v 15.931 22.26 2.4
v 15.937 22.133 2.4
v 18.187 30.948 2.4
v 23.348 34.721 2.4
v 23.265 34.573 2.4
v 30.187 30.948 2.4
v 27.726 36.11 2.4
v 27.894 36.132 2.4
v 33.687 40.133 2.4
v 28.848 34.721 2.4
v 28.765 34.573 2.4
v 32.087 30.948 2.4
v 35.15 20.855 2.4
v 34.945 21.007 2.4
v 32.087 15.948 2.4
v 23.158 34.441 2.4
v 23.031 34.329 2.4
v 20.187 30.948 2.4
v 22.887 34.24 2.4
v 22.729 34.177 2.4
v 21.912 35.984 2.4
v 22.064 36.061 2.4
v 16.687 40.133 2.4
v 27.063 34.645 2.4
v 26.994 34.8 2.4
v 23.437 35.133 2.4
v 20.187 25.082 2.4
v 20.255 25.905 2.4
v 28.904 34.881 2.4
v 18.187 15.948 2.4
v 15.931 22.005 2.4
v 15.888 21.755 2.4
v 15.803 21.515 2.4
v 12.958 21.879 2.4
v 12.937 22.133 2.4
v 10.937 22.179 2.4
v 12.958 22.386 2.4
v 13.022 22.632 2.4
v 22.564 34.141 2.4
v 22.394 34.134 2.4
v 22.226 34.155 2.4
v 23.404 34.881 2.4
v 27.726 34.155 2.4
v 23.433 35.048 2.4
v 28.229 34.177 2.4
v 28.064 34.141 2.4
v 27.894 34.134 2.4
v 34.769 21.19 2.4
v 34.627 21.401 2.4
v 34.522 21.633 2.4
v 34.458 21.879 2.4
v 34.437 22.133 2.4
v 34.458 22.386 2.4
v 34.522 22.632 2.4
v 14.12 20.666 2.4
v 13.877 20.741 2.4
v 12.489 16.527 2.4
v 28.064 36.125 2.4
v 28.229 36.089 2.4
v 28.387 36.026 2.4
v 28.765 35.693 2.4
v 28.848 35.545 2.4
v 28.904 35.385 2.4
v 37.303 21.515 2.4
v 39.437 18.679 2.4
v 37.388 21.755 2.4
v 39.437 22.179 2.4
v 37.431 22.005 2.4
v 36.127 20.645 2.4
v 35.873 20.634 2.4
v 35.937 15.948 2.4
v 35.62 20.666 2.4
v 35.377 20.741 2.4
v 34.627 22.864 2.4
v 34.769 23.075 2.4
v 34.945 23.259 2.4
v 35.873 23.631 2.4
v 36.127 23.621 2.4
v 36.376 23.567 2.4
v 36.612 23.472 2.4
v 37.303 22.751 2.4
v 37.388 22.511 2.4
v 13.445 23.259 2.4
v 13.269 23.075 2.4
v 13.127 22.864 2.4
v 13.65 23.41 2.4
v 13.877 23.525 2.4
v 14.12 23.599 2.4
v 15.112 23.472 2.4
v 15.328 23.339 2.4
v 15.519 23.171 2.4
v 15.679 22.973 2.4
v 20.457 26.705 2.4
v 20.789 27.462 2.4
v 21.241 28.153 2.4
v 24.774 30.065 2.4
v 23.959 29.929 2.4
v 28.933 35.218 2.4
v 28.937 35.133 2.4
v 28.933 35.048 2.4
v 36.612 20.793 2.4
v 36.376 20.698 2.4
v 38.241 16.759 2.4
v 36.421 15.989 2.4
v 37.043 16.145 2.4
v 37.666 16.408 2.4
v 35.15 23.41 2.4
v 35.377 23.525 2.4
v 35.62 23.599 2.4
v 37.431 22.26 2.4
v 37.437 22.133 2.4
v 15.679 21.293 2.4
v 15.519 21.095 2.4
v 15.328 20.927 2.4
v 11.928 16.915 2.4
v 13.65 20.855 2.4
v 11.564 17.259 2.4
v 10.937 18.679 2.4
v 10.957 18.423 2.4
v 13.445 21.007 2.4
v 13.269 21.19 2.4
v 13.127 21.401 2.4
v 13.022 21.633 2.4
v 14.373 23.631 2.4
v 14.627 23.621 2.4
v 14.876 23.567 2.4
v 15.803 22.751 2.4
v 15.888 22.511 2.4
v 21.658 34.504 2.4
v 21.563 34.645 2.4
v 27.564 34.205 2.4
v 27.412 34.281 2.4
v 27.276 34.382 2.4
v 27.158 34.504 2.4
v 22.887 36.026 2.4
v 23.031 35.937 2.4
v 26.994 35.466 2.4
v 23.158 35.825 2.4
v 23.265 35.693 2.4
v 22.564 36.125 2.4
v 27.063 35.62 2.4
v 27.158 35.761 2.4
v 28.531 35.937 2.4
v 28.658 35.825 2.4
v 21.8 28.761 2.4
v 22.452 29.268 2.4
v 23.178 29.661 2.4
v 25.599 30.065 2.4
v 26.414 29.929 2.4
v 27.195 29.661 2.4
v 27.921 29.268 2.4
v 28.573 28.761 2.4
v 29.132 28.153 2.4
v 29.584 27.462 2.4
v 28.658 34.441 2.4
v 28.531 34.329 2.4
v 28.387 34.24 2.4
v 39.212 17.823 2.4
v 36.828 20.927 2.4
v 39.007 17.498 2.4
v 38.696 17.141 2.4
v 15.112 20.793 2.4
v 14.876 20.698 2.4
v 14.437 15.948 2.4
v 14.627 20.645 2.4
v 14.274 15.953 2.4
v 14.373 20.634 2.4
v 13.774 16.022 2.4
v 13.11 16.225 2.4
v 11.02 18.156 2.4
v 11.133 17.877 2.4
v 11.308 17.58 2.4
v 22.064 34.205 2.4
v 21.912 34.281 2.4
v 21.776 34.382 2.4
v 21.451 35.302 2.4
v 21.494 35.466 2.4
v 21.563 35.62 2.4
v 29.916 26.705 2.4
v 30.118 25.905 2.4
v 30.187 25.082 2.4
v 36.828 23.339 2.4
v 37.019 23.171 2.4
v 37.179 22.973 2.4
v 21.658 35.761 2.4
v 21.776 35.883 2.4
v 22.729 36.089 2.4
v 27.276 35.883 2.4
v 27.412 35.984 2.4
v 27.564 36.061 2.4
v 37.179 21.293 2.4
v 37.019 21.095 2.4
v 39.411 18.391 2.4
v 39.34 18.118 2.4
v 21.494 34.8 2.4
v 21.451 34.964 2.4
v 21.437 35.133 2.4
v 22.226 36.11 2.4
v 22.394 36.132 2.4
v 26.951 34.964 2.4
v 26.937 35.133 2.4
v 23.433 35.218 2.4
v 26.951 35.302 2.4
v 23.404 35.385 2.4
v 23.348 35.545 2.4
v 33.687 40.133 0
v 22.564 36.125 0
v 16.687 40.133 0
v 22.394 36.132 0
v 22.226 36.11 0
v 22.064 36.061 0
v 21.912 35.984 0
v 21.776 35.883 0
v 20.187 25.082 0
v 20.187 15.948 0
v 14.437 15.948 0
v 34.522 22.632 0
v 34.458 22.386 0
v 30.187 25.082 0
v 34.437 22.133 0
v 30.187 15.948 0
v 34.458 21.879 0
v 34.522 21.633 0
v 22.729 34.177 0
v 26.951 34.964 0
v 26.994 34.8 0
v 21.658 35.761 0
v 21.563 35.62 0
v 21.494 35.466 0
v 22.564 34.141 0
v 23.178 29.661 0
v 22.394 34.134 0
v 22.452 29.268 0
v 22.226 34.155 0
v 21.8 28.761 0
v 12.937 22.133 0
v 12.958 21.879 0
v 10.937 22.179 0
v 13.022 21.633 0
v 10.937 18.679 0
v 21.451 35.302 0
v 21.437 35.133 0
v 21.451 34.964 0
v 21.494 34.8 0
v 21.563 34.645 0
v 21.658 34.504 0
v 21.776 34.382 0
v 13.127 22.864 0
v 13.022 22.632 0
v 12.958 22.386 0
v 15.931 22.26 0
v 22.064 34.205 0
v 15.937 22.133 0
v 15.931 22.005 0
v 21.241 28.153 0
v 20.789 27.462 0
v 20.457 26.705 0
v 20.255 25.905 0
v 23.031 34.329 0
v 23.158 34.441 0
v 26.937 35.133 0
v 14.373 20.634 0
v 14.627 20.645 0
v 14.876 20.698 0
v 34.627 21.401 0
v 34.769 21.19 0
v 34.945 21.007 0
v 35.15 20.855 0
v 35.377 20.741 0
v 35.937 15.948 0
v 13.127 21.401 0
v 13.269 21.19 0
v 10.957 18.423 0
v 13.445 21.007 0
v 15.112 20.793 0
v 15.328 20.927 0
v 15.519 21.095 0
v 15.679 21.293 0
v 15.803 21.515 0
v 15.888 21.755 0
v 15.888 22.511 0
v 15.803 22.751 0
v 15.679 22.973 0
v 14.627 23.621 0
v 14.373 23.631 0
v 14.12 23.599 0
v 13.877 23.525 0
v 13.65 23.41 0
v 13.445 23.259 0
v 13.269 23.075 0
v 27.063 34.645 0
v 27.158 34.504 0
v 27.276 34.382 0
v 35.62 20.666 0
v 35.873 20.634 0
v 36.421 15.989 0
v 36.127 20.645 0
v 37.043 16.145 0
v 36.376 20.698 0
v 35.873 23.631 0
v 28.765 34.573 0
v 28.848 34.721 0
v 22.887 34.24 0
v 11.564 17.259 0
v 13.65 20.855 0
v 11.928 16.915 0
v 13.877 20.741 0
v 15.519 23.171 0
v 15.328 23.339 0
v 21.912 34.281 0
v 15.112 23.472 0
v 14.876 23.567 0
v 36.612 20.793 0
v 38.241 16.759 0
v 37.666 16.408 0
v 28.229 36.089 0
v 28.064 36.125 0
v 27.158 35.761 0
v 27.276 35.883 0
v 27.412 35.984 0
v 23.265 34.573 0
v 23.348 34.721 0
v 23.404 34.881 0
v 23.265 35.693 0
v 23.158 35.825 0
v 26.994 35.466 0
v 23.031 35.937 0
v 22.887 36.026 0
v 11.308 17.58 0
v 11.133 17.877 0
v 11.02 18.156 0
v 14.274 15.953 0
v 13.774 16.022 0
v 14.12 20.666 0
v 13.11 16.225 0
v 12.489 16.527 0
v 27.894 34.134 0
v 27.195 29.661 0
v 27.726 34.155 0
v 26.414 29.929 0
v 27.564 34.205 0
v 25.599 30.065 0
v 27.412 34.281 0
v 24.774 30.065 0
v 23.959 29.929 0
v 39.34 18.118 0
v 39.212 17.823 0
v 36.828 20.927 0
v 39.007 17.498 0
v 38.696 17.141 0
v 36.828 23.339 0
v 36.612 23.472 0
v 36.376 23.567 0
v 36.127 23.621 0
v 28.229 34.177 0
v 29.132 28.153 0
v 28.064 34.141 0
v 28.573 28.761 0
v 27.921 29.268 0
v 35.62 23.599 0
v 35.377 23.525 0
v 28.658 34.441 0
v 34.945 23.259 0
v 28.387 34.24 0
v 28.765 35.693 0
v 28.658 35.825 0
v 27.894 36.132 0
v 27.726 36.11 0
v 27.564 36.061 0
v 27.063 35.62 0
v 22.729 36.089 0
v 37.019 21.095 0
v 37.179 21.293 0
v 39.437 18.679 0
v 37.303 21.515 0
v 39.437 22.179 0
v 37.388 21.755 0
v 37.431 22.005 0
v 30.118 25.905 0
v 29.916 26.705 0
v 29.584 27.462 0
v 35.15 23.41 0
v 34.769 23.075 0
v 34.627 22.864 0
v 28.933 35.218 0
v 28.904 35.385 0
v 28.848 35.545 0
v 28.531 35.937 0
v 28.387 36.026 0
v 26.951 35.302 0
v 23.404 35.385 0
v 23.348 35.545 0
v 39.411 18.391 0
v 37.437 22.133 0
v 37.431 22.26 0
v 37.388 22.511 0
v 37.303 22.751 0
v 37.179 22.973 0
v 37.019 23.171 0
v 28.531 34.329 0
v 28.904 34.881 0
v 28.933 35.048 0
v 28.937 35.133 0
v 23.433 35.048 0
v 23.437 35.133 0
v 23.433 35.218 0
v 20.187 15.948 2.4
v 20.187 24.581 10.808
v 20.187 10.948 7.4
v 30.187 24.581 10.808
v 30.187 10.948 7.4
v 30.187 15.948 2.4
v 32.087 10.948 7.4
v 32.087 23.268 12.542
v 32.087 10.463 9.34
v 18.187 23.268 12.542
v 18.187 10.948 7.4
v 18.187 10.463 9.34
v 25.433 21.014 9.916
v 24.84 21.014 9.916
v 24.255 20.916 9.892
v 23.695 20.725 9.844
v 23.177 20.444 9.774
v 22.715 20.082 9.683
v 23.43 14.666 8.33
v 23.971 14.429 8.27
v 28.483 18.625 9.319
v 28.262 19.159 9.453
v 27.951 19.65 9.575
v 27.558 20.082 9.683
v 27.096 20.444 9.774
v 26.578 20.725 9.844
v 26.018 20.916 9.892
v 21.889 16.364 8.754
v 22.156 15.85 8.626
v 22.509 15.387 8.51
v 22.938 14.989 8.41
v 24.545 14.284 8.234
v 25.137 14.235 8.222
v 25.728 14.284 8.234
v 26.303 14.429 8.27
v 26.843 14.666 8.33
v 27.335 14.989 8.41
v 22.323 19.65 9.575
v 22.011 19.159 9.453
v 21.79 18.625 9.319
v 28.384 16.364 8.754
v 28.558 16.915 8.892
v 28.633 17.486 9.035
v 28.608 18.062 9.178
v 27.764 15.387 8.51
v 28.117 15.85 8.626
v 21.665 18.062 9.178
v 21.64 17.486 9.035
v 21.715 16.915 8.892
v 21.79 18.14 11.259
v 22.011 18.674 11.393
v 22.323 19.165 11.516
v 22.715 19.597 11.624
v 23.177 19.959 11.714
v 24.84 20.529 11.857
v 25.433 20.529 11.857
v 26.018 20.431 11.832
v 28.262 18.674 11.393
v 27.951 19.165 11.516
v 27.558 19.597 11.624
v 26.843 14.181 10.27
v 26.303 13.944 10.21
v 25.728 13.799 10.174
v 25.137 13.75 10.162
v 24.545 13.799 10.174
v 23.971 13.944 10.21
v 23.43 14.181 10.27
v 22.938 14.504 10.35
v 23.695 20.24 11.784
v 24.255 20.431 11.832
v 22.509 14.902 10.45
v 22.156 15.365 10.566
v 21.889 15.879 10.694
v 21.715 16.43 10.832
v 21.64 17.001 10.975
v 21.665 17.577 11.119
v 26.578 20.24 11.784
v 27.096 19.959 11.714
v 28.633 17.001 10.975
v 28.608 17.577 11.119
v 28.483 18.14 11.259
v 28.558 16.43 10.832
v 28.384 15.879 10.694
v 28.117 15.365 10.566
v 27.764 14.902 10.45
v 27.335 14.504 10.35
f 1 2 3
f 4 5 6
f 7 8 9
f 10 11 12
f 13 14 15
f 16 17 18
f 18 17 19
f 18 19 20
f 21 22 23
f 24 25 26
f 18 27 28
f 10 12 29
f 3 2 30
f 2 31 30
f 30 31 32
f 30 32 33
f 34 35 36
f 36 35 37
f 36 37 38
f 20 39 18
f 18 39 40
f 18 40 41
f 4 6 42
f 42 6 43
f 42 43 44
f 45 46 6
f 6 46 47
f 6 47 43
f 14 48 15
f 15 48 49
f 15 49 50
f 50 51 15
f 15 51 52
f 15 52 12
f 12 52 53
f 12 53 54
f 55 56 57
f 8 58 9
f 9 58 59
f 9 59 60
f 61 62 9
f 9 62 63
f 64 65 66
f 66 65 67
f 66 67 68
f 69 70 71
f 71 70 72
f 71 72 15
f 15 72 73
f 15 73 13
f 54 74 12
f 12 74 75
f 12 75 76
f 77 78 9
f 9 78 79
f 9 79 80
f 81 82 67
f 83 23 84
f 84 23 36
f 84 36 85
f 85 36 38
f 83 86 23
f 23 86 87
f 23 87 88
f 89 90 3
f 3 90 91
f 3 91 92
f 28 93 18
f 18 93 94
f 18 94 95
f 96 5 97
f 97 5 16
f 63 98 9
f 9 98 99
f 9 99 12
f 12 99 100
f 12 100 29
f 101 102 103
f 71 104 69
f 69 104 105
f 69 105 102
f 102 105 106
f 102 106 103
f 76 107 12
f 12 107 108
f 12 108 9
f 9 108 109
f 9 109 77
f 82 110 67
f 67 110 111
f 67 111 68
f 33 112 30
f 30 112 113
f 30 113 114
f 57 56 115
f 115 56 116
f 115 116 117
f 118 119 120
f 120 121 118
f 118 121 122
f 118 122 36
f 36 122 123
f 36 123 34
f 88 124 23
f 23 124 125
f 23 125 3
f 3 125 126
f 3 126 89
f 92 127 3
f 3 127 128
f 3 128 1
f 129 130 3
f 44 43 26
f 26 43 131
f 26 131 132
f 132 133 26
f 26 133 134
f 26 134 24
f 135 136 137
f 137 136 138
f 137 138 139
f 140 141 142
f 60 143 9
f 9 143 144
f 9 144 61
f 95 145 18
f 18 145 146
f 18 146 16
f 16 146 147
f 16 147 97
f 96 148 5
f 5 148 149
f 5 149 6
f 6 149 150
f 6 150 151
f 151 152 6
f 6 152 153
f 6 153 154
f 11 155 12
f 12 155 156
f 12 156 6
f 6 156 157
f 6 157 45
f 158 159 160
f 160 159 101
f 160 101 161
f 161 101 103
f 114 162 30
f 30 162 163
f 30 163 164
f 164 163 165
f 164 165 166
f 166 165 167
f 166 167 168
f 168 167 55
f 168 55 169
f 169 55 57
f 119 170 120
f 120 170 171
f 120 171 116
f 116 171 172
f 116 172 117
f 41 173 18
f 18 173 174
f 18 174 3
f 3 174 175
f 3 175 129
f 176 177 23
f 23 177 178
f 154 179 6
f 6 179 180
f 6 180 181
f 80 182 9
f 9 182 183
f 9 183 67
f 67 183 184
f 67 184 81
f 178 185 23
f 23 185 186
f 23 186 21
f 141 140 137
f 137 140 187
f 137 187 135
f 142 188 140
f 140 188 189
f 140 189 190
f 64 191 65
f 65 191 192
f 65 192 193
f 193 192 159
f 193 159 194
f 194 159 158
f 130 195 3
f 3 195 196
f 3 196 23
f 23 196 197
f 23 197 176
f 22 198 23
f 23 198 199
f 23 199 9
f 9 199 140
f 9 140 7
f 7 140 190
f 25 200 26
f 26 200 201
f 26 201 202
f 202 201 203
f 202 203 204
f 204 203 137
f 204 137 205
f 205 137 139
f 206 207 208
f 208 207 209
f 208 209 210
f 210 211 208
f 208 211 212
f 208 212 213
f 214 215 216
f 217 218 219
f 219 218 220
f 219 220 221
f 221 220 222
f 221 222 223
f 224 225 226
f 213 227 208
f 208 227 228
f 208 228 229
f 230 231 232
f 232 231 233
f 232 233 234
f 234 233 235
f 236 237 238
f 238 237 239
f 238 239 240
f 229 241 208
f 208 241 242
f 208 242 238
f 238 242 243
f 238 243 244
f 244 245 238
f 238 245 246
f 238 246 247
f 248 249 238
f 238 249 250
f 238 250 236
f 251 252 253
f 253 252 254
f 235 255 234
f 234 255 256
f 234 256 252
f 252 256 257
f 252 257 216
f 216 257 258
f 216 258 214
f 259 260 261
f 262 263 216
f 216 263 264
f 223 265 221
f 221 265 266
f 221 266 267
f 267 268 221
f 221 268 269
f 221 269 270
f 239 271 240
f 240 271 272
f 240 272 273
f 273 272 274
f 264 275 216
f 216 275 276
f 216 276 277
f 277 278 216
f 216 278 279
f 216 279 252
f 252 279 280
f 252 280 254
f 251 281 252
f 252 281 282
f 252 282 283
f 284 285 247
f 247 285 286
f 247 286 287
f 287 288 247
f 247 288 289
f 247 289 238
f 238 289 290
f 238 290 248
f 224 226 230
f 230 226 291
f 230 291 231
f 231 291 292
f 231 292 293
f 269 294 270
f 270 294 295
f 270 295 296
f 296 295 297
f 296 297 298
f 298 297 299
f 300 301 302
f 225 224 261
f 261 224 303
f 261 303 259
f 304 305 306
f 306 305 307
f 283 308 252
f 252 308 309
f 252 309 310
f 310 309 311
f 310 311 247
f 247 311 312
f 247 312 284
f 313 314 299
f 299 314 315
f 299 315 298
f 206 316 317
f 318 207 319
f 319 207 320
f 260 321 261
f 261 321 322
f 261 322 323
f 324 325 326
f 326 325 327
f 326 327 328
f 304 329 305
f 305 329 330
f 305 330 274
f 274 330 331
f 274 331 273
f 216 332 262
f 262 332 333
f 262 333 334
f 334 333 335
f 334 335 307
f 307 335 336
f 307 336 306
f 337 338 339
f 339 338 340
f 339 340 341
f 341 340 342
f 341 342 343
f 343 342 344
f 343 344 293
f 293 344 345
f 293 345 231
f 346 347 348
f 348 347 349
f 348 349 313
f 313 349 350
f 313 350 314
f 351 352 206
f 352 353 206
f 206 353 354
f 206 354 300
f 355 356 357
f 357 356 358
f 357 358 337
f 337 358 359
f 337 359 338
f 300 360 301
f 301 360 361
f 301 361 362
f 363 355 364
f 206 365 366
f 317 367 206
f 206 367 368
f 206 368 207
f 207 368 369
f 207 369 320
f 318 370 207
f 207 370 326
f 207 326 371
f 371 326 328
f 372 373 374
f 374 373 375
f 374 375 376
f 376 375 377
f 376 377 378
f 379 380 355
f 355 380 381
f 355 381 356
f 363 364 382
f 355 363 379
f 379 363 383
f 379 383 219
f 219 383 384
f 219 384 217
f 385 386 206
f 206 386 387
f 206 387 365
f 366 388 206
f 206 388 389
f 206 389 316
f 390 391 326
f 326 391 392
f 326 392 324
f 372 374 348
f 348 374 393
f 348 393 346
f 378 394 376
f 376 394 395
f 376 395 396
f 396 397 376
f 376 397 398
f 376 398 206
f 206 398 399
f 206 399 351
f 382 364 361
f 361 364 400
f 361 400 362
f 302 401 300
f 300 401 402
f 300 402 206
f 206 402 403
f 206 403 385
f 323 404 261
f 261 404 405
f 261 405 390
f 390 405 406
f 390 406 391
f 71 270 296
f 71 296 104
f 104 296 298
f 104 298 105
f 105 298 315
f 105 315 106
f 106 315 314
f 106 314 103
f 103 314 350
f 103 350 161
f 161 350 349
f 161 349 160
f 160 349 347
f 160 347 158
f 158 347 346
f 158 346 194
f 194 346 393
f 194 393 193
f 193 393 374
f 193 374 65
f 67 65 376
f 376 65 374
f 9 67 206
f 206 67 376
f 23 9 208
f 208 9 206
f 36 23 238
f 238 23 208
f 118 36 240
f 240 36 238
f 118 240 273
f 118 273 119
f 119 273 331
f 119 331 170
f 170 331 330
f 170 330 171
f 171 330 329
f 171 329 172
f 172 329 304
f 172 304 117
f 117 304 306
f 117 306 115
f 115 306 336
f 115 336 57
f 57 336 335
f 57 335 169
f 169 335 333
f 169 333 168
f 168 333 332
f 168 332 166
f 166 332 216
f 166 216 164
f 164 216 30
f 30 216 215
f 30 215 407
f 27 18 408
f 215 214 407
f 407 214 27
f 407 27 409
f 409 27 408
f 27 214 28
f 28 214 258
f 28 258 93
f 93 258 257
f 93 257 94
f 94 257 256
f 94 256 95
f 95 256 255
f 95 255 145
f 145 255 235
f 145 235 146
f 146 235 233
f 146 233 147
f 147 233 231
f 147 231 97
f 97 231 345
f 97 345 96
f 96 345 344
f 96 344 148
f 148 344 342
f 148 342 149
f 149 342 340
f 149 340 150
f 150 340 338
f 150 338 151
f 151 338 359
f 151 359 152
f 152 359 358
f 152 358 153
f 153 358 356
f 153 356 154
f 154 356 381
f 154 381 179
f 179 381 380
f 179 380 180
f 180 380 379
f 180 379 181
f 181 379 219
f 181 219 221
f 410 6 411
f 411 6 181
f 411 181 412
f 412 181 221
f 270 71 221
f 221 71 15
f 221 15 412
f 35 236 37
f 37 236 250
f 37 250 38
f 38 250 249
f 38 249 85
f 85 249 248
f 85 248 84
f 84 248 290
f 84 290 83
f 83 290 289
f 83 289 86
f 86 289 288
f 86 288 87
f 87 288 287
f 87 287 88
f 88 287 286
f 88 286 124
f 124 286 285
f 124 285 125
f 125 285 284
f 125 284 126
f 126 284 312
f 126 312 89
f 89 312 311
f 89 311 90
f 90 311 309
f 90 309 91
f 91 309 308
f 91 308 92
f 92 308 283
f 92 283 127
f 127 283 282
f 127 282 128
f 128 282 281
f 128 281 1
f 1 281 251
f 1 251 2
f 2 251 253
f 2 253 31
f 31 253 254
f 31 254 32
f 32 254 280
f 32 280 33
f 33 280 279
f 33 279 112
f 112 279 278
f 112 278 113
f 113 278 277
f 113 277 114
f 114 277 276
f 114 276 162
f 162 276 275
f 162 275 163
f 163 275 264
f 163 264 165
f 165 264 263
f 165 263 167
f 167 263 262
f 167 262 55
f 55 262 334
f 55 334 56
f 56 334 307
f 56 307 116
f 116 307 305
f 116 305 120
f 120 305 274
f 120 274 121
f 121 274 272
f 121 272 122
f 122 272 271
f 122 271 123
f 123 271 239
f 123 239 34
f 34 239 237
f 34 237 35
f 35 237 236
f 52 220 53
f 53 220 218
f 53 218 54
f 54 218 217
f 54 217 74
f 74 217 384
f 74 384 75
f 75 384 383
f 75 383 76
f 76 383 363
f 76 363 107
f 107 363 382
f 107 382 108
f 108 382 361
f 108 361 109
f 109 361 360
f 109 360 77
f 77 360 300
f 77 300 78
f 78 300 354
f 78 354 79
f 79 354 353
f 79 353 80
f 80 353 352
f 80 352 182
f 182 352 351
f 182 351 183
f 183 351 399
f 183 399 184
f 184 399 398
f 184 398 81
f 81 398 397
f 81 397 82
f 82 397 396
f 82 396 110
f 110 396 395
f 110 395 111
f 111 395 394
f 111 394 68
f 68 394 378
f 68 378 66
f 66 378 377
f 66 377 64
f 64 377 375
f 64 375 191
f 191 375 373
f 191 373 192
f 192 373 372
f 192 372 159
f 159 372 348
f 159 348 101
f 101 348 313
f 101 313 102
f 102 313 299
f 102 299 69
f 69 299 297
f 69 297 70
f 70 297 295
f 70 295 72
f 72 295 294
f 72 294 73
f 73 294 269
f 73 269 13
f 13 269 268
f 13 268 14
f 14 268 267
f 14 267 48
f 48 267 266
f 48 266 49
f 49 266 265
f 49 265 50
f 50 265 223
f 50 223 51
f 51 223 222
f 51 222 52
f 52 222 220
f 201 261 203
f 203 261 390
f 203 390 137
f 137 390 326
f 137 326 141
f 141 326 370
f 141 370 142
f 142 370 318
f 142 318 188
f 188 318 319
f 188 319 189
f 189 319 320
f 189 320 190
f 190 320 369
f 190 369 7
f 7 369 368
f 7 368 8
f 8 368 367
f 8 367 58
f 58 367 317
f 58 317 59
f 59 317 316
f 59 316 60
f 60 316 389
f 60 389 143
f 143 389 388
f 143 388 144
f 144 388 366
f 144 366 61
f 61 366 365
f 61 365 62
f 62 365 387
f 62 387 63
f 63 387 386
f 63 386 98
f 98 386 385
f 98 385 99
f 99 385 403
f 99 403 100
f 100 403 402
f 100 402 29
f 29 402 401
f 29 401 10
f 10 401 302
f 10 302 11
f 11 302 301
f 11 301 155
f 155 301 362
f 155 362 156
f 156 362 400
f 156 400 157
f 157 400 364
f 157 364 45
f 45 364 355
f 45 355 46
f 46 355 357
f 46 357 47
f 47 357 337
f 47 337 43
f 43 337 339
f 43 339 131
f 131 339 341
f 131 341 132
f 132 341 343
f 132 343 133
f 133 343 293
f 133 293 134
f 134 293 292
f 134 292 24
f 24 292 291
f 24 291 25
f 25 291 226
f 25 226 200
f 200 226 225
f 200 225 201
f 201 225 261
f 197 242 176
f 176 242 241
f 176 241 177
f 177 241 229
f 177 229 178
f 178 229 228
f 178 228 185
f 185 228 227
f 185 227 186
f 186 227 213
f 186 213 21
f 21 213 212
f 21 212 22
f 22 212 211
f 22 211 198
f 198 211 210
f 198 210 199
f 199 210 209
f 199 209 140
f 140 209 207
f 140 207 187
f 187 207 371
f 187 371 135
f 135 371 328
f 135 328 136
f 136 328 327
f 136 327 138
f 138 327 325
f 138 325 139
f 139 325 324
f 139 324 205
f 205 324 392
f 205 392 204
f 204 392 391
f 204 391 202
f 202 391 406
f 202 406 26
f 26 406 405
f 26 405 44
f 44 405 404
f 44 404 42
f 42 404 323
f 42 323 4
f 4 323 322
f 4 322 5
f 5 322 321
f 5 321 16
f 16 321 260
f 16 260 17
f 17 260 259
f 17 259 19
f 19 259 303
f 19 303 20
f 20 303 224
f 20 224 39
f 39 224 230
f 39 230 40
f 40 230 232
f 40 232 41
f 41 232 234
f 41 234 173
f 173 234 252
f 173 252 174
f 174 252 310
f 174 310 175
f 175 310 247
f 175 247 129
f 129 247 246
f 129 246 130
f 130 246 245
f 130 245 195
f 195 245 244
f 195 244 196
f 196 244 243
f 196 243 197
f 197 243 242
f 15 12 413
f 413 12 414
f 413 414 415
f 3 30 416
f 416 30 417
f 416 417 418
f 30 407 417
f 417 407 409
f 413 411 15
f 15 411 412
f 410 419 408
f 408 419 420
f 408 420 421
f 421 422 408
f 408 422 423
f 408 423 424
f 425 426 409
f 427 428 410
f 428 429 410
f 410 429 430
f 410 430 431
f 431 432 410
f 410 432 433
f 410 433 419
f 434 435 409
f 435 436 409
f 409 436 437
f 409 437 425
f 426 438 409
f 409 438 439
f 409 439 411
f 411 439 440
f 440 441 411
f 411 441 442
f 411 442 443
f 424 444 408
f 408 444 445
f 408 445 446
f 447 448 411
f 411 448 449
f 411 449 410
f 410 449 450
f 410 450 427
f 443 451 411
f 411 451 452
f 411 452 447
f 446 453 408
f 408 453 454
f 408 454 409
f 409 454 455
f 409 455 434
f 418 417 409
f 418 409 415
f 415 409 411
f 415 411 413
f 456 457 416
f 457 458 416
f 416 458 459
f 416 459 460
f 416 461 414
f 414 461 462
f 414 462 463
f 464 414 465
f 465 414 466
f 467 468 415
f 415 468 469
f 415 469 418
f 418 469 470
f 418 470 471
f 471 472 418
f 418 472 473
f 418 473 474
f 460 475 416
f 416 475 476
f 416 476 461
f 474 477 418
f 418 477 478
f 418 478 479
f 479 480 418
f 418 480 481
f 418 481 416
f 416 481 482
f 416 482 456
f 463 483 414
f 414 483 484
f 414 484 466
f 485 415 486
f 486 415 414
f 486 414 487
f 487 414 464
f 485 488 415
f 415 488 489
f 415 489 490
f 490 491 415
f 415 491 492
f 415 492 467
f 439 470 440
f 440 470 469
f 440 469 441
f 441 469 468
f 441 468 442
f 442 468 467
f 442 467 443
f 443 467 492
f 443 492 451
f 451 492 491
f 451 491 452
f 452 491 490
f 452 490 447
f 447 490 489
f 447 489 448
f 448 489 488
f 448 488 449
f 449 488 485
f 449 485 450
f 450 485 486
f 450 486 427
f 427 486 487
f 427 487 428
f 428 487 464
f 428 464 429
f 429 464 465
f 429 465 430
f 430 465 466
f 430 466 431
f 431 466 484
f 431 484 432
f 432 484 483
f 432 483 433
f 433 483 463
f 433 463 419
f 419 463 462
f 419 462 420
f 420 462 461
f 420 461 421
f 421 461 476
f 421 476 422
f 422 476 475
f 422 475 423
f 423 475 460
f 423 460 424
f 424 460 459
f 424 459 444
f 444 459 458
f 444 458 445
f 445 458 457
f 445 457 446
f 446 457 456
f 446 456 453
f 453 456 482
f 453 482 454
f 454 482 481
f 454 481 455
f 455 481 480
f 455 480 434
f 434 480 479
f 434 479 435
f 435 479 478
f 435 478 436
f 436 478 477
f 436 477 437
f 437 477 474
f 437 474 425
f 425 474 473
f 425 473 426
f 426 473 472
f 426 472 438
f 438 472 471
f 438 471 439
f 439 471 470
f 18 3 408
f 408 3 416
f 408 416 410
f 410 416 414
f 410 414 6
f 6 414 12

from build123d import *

# Parameters (mm, degrees)
SKETCH_1_R          = 1.5
SKETCH_1_R_2        = 1
EXTRUDE_2_DEPTH     = 2.4
SKETCH_2_W          = 1.9
SKETCH_2_H          = 20
SKETCH_2_W_2        = 2
EXTRUDE_3_DEPTH     = 10
CUT_EXTRUDE_1_DEPTH = 15
CUT_EXTRUDE_2_DEPTH = 20
SKETCH_8_W          = 13.9
SKETCH_8_H          = 20.615528128
EXTRUDE_5_DEPTH     = 2
SKETCH_9_R          = 3.5
CUT_EXTRUDE_4_DEPTH = 2
CUT_EXTRUDE_5_DEPTH = 20


with BuildPart() as part:
    # 草图1 → 凸台-拉伸2 (new body)
    with BuildSketch(Plane.XY):
        with BuildLine():
            Line((14.436511473, 15.948106541), (20.186511473, 15.948106541))
            Line((20.186511473, 15.948106541), (20.186511473, 25.081955572))
            ThreePointArc((20.186511473, 25.081955572), (25.186511473, 30.081955572), (30.186511473, 25.081955572))
            Line((30.186511473, 25.081955572), (30.186511473, 15.948106541))
            Line((30.186511473, 15.948106541), (35.936511473, 15.948106541))
            add(Edge.make_bspline(
                [(39.436511473, 18.679045823), (39.436511473, 17.199254946), (37.41630235, 15.948106541), (35.936511473, 15.948106541)],
                knots=[0, 0, 0, 0, 4.439372631, 4.439372631, 4.439372631, 4.439372631], degree=3))
            Line((39.436511473, 18.679045823), (39.436511473, 22.179045823))
            Line((39.436511473, 22.179045823), (33.686511473, 40.132696196))
            Line((33.686511473, 40.132696196), (25.186511473, 40.132696196))
            Line((25.186511473, 40.132696196), (16.686511473, 40.132696196))
            Line((16.686511473, 40.132696196), (10.936511473, 22.179045823))
            Line((10.936511473, 22.179045823), (10.936511473, 18.679045823))
            add(Edge.make_bspline(
                [(10.936511473, 18.679045823), (10.936511473, 17.199254946), (12.956720596, 15.948106541), (14.436511473, 15.948106541)],
                knots=[0, 0, 0, 0, 4.439372631, 4.439372631, 4.439372631, 4.439372631], degree=3))
        make_face()
        with Locations((14.436511473, 22.132696196)):
            Circle(SKETCH_1_R, mode=Mode.SUBTRACT)
        with Locations((35.936511473, 22.132696196)):
            Circle(SKETCH_1_R, mode=Mode.SUBTRACT)
        with Locations((27.936511473, 35.132696196)):
            Circle(SKETCH_1_R_2, mode=Mode.SUBTRACT)
        with Locations((22.436511473, 35.132696196)):
            Circle(SKETCH_1_R_2, mode=Mode.SUBTRACT)
    extrude(amount=EXTRUDE_2_DEPTH)

    # 草图2 → 凸台-拉伸3 (add)
    with BuildSketch(Plane.XY.offset(2.4)):
        with Locations((31.136511473, 20.948106541)):
            Rectangle(SKETCH_2_W, SKETCH_2_H)
        with Locations((19.186511473, 20.948106541)):
            Rectangle(SKETCH_2_W_2, SKETCH_2_H)
    extrude(amount=EXTRUDE_3_DEPTH)

    # 草图4 → 切除-拉伸1 (cut)
    with BuildSketch(Plane.ZY.offset(-18.186511473)):
        Polygon((2.4, 15.948106541), (7.4, 10.948106541), (2.4, 10.948106541), align=None)
    extrude(amount=-CUT_EXTRUDE_1_DEPTH, mode=Mode.SUBTRACT)

    # 草图5 → 切除-拉伸2 (cut)
    with BuildSketch(Plane.ZY.offset(-18.186511473)):
        Polygon((12.4, 10.948106541), (12.4, 30.948106541), (7.4, 10.948106541), align=None)
    extrude(amount=-CUT_EXTRUDE_2_DEPTH, mode=Mode.SUBTRACT)

    # 草图8 → 凸台-拉伸5 (add)
    with BuildSketch(Plane(origin=(0, -1.097170203, 4.388680814), x_dir=(1, 0, 0), z_dir=(0, -0.242535625, 0.9701425))):
        with Locations((25.136511473, 22.723751141)):
            Rectangle(SKETCH_8_W, SKETCH_8_H)
    extrude(amount=EXTRUDE_5_DEPTH)

    # 草图9 → 切除-拉伸4 (cut)
    with BuildSketch(Plane(origin=(0, -1.582241454, 6.328965814), x_dir=(1, 0, 0), z_dir=(0, -0.242535625, 0.9701425))):
        with Locations((25.136511473, 19.304044077)):
            Circle(SKETCH_9_R)
    extrude(amount=-CUT_EXTRUDE_4_DEPTH, mode=Mode.SUBTRACT)

    # 草图10 → 切除-拉伸5 (cut)
    with BuildSketch(Plane.ZY.offset(-18.186511473)):
        Polygon((2.4, 30.948106541), (12.541594878, 23.268274803), (18.273865584, 30.948106541), align=None)
    extrude(amount=-CUT_EXTRUDE_5_DEPTH, mode=Mode.SUBTRACT)


solid = part.part
